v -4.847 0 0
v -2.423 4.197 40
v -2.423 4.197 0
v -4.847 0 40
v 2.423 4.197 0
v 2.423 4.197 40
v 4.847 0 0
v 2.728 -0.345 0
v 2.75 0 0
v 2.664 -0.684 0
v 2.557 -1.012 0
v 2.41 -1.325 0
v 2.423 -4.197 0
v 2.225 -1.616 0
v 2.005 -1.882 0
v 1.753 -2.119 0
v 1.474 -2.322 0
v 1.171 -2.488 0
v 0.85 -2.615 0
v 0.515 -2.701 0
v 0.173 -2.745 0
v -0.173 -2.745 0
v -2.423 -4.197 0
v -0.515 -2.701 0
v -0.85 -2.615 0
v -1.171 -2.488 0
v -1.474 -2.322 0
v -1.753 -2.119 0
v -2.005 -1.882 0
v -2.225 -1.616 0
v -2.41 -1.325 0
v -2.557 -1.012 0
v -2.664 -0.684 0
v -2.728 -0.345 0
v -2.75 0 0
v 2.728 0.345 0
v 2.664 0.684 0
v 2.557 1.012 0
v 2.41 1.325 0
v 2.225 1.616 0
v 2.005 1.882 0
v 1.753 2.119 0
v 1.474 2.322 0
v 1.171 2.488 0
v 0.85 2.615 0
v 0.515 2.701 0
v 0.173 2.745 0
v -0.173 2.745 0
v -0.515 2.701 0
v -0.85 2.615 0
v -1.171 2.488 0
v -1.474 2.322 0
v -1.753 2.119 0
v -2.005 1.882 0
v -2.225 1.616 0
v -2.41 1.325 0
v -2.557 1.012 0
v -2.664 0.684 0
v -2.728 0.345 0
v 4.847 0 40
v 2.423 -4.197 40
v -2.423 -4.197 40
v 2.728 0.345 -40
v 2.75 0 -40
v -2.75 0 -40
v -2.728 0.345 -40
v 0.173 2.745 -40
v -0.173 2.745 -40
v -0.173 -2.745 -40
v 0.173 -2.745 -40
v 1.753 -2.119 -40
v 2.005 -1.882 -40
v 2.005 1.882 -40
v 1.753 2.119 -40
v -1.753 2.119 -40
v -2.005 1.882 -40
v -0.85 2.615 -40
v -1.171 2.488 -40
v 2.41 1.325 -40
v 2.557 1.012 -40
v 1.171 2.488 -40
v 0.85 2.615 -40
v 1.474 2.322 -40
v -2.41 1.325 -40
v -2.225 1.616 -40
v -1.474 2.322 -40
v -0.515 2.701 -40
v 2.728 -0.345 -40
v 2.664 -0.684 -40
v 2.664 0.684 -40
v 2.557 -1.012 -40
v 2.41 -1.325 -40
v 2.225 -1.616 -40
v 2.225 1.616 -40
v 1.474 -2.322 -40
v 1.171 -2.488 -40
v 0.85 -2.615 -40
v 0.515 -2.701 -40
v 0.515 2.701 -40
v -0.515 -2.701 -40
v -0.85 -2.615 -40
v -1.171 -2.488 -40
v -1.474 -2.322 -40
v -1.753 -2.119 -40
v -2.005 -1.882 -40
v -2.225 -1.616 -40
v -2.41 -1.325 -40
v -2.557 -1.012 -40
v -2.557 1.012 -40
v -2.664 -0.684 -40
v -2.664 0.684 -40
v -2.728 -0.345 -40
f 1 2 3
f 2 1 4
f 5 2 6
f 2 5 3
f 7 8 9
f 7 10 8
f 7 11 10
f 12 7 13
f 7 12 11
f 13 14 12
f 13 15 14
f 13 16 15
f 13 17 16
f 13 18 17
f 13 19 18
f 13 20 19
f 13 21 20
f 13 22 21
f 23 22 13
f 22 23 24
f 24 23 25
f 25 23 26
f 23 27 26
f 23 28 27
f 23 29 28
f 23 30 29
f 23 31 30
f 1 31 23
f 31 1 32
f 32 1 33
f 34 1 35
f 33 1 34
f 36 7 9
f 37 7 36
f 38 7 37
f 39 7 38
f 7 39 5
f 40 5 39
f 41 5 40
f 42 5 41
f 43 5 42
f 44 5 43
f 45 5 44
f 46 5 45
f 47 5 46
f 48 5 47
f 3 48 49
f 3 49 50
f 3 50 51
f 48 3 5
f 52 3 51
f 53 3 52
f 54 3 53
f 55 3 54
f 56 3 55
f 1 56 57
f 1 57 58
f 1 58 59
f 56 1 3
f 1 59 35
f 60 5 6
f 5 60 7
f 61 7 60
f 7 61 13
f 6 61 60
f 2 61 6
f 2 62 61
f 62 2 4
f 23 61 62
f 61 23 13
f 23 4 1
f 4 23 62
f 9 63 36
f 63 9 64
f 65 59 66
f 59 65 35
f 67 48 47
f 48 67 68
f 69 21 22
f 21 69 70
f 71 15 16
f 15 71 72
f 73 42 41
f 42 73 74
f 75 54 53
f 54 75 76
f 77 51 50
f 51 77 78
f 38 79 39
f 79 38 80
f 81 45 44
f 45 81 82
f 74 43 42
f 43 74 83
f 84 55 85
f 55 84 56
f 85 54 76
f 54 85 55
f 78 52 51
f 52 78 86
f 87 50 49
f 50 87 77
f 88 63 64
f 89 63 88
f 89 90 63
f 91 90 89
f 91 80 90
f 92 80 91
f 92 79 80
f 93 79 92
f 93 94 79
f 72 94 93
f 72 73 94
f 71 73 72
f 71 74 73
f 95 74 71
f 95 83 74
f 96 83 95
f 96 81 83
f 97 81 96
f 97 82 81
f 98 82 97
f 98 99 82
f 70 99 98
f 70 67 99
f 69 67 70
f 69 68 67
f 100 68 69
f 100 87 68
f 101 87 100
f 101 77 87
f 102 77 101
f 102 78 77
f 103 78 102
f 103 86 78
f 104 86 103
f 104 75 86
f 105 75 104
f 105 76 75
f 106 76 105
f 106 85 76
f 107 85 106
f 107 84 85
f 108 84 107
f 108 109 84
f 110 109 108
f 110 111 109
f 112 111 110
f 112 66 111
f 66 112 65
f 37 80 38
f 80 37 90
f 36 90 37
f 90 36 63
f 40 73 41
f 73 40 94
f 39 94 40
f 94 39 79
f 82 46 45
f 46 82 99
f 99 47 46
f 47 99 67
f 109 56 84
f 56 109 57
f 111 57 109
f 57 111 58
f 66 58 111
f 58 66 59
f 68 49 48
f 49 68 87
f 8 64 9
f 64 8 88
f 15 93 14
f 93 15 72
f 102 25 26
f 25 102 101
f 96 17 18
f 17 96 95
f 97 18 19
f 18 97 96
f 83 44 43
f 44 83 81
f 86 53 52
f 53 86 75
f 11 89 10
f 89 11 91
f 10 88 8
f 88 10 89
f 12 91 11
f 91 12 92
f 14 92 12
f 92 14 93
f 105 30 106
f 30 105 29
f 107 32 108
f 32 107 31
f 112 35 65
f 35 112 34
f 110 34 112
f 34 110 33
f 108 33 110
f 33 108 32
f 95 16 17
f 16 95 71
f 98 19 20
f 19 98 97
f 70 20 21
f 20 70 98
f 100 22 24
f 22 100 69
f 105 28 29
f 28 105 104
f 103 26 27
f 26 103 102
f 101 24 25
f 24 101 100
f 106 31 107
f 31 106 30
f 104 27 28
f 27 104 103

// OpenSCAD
$fn = 50;


difference() {
	union() {
		translate(v = [0, 0, 0]) {
			rotate(a = [0, 0, 0]) {
				translate(v = [0, 0, 0]) {
					rotate(a = [0, 0, 0]) {
						linear_extrude(height = 40) {
							polygon(points = [[4.8468000000, 0.0000000000], [2.4234000000, 4.1974519271], [-2.4234000000, 4.1974519271], [-4.8468000000, 0.0000000000], [-2.4234000000, -4.1974519271], [2.4234000000, -4.1974519271]]);
						}
					}
				}
			}
		}
		translate(v = [0, 0, -40]) {
			rotate(a = [0, 0, 0]) {
				cylinder(h = 40, r = 2.7500000000);
			}
		}
	}
	union();
}
